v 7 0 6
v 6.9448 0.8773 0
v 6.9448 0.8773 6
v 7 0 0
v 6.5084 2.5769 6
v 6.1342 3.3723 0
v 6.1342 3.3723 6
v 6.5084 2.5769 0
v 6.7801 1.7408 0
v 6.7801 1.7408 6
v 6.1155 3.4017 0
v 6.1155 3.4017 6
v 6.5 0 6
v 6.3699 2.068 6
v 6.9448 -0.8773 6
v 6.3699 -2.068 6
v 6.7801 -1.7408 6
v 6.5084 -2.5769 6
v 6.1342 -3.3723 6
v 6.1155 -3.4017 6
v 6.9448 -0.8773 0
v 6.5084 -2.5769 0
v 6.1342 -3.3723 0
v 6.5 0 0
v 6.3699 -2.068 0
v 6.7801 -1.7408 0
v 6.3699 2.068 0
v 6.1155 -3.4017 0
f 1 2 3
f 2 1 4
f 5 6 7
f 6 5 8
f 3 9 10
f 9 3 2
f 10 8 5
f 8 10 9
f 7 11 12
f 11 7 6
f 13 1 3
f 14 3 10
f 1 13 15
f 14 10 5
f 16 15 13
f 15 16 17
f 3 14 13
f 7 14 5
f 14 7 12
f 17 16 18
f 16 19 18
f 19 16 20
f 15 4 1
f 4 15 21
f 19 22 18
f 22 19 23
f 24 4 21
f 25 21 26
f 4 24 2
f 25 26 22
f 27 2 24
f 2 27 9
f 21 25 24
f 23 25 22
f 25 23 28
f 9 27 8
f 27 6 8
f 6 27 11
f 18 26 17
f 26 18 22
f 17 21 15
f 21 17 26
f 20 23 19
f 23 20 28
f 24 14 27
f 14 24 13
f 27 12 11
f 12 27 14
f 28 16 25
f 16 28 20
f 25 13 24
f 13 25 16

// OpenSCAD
$fn = 50;


difference() {
	union() {
		cylinder(h = 6, r = 7.0000000000);
		translate(v = [-13.0000000000, 0, 0]) {
			cylinder(h = 6, r = 7.0000000000);
		}
	}
	union() {
		cylinder(h = 6, r = 3.2500000000);
		cylinder(h = 6, r = 1.8000000000);
		cylinder(h = 6, r = 1.8000000000);
		cylinder(h = 6, r = 1.8000000000);
		translate(v = [-17.5000000000, 0, 0]) {
			hull() {
				translate(v = [-3.7500000000, 0.0000000000, 0]) {
					cylinder(h = 6, r = 7.5000000000);
				}
				translate(v = [3.7500000000, 0.0000000000, 0]) {
					cylinder(h = 6, r = 7.5000000000);
				}
				translate(v = [-3.7500000000, -0.0000000000, 0]) {
					cylinder(h = 6, r = 7.5000000000);
				}
				translate(v = [3.7500000000, -0.0000000000, 0]) {
					cylinder(h = 6, r = 7.5000000000);
				}
			}
		}
		translate(v = [-10.0000000000, 0, 0.0000000000]) {
			cylinder(h = 6, r = 16.5000000000);
		}
	}
}
